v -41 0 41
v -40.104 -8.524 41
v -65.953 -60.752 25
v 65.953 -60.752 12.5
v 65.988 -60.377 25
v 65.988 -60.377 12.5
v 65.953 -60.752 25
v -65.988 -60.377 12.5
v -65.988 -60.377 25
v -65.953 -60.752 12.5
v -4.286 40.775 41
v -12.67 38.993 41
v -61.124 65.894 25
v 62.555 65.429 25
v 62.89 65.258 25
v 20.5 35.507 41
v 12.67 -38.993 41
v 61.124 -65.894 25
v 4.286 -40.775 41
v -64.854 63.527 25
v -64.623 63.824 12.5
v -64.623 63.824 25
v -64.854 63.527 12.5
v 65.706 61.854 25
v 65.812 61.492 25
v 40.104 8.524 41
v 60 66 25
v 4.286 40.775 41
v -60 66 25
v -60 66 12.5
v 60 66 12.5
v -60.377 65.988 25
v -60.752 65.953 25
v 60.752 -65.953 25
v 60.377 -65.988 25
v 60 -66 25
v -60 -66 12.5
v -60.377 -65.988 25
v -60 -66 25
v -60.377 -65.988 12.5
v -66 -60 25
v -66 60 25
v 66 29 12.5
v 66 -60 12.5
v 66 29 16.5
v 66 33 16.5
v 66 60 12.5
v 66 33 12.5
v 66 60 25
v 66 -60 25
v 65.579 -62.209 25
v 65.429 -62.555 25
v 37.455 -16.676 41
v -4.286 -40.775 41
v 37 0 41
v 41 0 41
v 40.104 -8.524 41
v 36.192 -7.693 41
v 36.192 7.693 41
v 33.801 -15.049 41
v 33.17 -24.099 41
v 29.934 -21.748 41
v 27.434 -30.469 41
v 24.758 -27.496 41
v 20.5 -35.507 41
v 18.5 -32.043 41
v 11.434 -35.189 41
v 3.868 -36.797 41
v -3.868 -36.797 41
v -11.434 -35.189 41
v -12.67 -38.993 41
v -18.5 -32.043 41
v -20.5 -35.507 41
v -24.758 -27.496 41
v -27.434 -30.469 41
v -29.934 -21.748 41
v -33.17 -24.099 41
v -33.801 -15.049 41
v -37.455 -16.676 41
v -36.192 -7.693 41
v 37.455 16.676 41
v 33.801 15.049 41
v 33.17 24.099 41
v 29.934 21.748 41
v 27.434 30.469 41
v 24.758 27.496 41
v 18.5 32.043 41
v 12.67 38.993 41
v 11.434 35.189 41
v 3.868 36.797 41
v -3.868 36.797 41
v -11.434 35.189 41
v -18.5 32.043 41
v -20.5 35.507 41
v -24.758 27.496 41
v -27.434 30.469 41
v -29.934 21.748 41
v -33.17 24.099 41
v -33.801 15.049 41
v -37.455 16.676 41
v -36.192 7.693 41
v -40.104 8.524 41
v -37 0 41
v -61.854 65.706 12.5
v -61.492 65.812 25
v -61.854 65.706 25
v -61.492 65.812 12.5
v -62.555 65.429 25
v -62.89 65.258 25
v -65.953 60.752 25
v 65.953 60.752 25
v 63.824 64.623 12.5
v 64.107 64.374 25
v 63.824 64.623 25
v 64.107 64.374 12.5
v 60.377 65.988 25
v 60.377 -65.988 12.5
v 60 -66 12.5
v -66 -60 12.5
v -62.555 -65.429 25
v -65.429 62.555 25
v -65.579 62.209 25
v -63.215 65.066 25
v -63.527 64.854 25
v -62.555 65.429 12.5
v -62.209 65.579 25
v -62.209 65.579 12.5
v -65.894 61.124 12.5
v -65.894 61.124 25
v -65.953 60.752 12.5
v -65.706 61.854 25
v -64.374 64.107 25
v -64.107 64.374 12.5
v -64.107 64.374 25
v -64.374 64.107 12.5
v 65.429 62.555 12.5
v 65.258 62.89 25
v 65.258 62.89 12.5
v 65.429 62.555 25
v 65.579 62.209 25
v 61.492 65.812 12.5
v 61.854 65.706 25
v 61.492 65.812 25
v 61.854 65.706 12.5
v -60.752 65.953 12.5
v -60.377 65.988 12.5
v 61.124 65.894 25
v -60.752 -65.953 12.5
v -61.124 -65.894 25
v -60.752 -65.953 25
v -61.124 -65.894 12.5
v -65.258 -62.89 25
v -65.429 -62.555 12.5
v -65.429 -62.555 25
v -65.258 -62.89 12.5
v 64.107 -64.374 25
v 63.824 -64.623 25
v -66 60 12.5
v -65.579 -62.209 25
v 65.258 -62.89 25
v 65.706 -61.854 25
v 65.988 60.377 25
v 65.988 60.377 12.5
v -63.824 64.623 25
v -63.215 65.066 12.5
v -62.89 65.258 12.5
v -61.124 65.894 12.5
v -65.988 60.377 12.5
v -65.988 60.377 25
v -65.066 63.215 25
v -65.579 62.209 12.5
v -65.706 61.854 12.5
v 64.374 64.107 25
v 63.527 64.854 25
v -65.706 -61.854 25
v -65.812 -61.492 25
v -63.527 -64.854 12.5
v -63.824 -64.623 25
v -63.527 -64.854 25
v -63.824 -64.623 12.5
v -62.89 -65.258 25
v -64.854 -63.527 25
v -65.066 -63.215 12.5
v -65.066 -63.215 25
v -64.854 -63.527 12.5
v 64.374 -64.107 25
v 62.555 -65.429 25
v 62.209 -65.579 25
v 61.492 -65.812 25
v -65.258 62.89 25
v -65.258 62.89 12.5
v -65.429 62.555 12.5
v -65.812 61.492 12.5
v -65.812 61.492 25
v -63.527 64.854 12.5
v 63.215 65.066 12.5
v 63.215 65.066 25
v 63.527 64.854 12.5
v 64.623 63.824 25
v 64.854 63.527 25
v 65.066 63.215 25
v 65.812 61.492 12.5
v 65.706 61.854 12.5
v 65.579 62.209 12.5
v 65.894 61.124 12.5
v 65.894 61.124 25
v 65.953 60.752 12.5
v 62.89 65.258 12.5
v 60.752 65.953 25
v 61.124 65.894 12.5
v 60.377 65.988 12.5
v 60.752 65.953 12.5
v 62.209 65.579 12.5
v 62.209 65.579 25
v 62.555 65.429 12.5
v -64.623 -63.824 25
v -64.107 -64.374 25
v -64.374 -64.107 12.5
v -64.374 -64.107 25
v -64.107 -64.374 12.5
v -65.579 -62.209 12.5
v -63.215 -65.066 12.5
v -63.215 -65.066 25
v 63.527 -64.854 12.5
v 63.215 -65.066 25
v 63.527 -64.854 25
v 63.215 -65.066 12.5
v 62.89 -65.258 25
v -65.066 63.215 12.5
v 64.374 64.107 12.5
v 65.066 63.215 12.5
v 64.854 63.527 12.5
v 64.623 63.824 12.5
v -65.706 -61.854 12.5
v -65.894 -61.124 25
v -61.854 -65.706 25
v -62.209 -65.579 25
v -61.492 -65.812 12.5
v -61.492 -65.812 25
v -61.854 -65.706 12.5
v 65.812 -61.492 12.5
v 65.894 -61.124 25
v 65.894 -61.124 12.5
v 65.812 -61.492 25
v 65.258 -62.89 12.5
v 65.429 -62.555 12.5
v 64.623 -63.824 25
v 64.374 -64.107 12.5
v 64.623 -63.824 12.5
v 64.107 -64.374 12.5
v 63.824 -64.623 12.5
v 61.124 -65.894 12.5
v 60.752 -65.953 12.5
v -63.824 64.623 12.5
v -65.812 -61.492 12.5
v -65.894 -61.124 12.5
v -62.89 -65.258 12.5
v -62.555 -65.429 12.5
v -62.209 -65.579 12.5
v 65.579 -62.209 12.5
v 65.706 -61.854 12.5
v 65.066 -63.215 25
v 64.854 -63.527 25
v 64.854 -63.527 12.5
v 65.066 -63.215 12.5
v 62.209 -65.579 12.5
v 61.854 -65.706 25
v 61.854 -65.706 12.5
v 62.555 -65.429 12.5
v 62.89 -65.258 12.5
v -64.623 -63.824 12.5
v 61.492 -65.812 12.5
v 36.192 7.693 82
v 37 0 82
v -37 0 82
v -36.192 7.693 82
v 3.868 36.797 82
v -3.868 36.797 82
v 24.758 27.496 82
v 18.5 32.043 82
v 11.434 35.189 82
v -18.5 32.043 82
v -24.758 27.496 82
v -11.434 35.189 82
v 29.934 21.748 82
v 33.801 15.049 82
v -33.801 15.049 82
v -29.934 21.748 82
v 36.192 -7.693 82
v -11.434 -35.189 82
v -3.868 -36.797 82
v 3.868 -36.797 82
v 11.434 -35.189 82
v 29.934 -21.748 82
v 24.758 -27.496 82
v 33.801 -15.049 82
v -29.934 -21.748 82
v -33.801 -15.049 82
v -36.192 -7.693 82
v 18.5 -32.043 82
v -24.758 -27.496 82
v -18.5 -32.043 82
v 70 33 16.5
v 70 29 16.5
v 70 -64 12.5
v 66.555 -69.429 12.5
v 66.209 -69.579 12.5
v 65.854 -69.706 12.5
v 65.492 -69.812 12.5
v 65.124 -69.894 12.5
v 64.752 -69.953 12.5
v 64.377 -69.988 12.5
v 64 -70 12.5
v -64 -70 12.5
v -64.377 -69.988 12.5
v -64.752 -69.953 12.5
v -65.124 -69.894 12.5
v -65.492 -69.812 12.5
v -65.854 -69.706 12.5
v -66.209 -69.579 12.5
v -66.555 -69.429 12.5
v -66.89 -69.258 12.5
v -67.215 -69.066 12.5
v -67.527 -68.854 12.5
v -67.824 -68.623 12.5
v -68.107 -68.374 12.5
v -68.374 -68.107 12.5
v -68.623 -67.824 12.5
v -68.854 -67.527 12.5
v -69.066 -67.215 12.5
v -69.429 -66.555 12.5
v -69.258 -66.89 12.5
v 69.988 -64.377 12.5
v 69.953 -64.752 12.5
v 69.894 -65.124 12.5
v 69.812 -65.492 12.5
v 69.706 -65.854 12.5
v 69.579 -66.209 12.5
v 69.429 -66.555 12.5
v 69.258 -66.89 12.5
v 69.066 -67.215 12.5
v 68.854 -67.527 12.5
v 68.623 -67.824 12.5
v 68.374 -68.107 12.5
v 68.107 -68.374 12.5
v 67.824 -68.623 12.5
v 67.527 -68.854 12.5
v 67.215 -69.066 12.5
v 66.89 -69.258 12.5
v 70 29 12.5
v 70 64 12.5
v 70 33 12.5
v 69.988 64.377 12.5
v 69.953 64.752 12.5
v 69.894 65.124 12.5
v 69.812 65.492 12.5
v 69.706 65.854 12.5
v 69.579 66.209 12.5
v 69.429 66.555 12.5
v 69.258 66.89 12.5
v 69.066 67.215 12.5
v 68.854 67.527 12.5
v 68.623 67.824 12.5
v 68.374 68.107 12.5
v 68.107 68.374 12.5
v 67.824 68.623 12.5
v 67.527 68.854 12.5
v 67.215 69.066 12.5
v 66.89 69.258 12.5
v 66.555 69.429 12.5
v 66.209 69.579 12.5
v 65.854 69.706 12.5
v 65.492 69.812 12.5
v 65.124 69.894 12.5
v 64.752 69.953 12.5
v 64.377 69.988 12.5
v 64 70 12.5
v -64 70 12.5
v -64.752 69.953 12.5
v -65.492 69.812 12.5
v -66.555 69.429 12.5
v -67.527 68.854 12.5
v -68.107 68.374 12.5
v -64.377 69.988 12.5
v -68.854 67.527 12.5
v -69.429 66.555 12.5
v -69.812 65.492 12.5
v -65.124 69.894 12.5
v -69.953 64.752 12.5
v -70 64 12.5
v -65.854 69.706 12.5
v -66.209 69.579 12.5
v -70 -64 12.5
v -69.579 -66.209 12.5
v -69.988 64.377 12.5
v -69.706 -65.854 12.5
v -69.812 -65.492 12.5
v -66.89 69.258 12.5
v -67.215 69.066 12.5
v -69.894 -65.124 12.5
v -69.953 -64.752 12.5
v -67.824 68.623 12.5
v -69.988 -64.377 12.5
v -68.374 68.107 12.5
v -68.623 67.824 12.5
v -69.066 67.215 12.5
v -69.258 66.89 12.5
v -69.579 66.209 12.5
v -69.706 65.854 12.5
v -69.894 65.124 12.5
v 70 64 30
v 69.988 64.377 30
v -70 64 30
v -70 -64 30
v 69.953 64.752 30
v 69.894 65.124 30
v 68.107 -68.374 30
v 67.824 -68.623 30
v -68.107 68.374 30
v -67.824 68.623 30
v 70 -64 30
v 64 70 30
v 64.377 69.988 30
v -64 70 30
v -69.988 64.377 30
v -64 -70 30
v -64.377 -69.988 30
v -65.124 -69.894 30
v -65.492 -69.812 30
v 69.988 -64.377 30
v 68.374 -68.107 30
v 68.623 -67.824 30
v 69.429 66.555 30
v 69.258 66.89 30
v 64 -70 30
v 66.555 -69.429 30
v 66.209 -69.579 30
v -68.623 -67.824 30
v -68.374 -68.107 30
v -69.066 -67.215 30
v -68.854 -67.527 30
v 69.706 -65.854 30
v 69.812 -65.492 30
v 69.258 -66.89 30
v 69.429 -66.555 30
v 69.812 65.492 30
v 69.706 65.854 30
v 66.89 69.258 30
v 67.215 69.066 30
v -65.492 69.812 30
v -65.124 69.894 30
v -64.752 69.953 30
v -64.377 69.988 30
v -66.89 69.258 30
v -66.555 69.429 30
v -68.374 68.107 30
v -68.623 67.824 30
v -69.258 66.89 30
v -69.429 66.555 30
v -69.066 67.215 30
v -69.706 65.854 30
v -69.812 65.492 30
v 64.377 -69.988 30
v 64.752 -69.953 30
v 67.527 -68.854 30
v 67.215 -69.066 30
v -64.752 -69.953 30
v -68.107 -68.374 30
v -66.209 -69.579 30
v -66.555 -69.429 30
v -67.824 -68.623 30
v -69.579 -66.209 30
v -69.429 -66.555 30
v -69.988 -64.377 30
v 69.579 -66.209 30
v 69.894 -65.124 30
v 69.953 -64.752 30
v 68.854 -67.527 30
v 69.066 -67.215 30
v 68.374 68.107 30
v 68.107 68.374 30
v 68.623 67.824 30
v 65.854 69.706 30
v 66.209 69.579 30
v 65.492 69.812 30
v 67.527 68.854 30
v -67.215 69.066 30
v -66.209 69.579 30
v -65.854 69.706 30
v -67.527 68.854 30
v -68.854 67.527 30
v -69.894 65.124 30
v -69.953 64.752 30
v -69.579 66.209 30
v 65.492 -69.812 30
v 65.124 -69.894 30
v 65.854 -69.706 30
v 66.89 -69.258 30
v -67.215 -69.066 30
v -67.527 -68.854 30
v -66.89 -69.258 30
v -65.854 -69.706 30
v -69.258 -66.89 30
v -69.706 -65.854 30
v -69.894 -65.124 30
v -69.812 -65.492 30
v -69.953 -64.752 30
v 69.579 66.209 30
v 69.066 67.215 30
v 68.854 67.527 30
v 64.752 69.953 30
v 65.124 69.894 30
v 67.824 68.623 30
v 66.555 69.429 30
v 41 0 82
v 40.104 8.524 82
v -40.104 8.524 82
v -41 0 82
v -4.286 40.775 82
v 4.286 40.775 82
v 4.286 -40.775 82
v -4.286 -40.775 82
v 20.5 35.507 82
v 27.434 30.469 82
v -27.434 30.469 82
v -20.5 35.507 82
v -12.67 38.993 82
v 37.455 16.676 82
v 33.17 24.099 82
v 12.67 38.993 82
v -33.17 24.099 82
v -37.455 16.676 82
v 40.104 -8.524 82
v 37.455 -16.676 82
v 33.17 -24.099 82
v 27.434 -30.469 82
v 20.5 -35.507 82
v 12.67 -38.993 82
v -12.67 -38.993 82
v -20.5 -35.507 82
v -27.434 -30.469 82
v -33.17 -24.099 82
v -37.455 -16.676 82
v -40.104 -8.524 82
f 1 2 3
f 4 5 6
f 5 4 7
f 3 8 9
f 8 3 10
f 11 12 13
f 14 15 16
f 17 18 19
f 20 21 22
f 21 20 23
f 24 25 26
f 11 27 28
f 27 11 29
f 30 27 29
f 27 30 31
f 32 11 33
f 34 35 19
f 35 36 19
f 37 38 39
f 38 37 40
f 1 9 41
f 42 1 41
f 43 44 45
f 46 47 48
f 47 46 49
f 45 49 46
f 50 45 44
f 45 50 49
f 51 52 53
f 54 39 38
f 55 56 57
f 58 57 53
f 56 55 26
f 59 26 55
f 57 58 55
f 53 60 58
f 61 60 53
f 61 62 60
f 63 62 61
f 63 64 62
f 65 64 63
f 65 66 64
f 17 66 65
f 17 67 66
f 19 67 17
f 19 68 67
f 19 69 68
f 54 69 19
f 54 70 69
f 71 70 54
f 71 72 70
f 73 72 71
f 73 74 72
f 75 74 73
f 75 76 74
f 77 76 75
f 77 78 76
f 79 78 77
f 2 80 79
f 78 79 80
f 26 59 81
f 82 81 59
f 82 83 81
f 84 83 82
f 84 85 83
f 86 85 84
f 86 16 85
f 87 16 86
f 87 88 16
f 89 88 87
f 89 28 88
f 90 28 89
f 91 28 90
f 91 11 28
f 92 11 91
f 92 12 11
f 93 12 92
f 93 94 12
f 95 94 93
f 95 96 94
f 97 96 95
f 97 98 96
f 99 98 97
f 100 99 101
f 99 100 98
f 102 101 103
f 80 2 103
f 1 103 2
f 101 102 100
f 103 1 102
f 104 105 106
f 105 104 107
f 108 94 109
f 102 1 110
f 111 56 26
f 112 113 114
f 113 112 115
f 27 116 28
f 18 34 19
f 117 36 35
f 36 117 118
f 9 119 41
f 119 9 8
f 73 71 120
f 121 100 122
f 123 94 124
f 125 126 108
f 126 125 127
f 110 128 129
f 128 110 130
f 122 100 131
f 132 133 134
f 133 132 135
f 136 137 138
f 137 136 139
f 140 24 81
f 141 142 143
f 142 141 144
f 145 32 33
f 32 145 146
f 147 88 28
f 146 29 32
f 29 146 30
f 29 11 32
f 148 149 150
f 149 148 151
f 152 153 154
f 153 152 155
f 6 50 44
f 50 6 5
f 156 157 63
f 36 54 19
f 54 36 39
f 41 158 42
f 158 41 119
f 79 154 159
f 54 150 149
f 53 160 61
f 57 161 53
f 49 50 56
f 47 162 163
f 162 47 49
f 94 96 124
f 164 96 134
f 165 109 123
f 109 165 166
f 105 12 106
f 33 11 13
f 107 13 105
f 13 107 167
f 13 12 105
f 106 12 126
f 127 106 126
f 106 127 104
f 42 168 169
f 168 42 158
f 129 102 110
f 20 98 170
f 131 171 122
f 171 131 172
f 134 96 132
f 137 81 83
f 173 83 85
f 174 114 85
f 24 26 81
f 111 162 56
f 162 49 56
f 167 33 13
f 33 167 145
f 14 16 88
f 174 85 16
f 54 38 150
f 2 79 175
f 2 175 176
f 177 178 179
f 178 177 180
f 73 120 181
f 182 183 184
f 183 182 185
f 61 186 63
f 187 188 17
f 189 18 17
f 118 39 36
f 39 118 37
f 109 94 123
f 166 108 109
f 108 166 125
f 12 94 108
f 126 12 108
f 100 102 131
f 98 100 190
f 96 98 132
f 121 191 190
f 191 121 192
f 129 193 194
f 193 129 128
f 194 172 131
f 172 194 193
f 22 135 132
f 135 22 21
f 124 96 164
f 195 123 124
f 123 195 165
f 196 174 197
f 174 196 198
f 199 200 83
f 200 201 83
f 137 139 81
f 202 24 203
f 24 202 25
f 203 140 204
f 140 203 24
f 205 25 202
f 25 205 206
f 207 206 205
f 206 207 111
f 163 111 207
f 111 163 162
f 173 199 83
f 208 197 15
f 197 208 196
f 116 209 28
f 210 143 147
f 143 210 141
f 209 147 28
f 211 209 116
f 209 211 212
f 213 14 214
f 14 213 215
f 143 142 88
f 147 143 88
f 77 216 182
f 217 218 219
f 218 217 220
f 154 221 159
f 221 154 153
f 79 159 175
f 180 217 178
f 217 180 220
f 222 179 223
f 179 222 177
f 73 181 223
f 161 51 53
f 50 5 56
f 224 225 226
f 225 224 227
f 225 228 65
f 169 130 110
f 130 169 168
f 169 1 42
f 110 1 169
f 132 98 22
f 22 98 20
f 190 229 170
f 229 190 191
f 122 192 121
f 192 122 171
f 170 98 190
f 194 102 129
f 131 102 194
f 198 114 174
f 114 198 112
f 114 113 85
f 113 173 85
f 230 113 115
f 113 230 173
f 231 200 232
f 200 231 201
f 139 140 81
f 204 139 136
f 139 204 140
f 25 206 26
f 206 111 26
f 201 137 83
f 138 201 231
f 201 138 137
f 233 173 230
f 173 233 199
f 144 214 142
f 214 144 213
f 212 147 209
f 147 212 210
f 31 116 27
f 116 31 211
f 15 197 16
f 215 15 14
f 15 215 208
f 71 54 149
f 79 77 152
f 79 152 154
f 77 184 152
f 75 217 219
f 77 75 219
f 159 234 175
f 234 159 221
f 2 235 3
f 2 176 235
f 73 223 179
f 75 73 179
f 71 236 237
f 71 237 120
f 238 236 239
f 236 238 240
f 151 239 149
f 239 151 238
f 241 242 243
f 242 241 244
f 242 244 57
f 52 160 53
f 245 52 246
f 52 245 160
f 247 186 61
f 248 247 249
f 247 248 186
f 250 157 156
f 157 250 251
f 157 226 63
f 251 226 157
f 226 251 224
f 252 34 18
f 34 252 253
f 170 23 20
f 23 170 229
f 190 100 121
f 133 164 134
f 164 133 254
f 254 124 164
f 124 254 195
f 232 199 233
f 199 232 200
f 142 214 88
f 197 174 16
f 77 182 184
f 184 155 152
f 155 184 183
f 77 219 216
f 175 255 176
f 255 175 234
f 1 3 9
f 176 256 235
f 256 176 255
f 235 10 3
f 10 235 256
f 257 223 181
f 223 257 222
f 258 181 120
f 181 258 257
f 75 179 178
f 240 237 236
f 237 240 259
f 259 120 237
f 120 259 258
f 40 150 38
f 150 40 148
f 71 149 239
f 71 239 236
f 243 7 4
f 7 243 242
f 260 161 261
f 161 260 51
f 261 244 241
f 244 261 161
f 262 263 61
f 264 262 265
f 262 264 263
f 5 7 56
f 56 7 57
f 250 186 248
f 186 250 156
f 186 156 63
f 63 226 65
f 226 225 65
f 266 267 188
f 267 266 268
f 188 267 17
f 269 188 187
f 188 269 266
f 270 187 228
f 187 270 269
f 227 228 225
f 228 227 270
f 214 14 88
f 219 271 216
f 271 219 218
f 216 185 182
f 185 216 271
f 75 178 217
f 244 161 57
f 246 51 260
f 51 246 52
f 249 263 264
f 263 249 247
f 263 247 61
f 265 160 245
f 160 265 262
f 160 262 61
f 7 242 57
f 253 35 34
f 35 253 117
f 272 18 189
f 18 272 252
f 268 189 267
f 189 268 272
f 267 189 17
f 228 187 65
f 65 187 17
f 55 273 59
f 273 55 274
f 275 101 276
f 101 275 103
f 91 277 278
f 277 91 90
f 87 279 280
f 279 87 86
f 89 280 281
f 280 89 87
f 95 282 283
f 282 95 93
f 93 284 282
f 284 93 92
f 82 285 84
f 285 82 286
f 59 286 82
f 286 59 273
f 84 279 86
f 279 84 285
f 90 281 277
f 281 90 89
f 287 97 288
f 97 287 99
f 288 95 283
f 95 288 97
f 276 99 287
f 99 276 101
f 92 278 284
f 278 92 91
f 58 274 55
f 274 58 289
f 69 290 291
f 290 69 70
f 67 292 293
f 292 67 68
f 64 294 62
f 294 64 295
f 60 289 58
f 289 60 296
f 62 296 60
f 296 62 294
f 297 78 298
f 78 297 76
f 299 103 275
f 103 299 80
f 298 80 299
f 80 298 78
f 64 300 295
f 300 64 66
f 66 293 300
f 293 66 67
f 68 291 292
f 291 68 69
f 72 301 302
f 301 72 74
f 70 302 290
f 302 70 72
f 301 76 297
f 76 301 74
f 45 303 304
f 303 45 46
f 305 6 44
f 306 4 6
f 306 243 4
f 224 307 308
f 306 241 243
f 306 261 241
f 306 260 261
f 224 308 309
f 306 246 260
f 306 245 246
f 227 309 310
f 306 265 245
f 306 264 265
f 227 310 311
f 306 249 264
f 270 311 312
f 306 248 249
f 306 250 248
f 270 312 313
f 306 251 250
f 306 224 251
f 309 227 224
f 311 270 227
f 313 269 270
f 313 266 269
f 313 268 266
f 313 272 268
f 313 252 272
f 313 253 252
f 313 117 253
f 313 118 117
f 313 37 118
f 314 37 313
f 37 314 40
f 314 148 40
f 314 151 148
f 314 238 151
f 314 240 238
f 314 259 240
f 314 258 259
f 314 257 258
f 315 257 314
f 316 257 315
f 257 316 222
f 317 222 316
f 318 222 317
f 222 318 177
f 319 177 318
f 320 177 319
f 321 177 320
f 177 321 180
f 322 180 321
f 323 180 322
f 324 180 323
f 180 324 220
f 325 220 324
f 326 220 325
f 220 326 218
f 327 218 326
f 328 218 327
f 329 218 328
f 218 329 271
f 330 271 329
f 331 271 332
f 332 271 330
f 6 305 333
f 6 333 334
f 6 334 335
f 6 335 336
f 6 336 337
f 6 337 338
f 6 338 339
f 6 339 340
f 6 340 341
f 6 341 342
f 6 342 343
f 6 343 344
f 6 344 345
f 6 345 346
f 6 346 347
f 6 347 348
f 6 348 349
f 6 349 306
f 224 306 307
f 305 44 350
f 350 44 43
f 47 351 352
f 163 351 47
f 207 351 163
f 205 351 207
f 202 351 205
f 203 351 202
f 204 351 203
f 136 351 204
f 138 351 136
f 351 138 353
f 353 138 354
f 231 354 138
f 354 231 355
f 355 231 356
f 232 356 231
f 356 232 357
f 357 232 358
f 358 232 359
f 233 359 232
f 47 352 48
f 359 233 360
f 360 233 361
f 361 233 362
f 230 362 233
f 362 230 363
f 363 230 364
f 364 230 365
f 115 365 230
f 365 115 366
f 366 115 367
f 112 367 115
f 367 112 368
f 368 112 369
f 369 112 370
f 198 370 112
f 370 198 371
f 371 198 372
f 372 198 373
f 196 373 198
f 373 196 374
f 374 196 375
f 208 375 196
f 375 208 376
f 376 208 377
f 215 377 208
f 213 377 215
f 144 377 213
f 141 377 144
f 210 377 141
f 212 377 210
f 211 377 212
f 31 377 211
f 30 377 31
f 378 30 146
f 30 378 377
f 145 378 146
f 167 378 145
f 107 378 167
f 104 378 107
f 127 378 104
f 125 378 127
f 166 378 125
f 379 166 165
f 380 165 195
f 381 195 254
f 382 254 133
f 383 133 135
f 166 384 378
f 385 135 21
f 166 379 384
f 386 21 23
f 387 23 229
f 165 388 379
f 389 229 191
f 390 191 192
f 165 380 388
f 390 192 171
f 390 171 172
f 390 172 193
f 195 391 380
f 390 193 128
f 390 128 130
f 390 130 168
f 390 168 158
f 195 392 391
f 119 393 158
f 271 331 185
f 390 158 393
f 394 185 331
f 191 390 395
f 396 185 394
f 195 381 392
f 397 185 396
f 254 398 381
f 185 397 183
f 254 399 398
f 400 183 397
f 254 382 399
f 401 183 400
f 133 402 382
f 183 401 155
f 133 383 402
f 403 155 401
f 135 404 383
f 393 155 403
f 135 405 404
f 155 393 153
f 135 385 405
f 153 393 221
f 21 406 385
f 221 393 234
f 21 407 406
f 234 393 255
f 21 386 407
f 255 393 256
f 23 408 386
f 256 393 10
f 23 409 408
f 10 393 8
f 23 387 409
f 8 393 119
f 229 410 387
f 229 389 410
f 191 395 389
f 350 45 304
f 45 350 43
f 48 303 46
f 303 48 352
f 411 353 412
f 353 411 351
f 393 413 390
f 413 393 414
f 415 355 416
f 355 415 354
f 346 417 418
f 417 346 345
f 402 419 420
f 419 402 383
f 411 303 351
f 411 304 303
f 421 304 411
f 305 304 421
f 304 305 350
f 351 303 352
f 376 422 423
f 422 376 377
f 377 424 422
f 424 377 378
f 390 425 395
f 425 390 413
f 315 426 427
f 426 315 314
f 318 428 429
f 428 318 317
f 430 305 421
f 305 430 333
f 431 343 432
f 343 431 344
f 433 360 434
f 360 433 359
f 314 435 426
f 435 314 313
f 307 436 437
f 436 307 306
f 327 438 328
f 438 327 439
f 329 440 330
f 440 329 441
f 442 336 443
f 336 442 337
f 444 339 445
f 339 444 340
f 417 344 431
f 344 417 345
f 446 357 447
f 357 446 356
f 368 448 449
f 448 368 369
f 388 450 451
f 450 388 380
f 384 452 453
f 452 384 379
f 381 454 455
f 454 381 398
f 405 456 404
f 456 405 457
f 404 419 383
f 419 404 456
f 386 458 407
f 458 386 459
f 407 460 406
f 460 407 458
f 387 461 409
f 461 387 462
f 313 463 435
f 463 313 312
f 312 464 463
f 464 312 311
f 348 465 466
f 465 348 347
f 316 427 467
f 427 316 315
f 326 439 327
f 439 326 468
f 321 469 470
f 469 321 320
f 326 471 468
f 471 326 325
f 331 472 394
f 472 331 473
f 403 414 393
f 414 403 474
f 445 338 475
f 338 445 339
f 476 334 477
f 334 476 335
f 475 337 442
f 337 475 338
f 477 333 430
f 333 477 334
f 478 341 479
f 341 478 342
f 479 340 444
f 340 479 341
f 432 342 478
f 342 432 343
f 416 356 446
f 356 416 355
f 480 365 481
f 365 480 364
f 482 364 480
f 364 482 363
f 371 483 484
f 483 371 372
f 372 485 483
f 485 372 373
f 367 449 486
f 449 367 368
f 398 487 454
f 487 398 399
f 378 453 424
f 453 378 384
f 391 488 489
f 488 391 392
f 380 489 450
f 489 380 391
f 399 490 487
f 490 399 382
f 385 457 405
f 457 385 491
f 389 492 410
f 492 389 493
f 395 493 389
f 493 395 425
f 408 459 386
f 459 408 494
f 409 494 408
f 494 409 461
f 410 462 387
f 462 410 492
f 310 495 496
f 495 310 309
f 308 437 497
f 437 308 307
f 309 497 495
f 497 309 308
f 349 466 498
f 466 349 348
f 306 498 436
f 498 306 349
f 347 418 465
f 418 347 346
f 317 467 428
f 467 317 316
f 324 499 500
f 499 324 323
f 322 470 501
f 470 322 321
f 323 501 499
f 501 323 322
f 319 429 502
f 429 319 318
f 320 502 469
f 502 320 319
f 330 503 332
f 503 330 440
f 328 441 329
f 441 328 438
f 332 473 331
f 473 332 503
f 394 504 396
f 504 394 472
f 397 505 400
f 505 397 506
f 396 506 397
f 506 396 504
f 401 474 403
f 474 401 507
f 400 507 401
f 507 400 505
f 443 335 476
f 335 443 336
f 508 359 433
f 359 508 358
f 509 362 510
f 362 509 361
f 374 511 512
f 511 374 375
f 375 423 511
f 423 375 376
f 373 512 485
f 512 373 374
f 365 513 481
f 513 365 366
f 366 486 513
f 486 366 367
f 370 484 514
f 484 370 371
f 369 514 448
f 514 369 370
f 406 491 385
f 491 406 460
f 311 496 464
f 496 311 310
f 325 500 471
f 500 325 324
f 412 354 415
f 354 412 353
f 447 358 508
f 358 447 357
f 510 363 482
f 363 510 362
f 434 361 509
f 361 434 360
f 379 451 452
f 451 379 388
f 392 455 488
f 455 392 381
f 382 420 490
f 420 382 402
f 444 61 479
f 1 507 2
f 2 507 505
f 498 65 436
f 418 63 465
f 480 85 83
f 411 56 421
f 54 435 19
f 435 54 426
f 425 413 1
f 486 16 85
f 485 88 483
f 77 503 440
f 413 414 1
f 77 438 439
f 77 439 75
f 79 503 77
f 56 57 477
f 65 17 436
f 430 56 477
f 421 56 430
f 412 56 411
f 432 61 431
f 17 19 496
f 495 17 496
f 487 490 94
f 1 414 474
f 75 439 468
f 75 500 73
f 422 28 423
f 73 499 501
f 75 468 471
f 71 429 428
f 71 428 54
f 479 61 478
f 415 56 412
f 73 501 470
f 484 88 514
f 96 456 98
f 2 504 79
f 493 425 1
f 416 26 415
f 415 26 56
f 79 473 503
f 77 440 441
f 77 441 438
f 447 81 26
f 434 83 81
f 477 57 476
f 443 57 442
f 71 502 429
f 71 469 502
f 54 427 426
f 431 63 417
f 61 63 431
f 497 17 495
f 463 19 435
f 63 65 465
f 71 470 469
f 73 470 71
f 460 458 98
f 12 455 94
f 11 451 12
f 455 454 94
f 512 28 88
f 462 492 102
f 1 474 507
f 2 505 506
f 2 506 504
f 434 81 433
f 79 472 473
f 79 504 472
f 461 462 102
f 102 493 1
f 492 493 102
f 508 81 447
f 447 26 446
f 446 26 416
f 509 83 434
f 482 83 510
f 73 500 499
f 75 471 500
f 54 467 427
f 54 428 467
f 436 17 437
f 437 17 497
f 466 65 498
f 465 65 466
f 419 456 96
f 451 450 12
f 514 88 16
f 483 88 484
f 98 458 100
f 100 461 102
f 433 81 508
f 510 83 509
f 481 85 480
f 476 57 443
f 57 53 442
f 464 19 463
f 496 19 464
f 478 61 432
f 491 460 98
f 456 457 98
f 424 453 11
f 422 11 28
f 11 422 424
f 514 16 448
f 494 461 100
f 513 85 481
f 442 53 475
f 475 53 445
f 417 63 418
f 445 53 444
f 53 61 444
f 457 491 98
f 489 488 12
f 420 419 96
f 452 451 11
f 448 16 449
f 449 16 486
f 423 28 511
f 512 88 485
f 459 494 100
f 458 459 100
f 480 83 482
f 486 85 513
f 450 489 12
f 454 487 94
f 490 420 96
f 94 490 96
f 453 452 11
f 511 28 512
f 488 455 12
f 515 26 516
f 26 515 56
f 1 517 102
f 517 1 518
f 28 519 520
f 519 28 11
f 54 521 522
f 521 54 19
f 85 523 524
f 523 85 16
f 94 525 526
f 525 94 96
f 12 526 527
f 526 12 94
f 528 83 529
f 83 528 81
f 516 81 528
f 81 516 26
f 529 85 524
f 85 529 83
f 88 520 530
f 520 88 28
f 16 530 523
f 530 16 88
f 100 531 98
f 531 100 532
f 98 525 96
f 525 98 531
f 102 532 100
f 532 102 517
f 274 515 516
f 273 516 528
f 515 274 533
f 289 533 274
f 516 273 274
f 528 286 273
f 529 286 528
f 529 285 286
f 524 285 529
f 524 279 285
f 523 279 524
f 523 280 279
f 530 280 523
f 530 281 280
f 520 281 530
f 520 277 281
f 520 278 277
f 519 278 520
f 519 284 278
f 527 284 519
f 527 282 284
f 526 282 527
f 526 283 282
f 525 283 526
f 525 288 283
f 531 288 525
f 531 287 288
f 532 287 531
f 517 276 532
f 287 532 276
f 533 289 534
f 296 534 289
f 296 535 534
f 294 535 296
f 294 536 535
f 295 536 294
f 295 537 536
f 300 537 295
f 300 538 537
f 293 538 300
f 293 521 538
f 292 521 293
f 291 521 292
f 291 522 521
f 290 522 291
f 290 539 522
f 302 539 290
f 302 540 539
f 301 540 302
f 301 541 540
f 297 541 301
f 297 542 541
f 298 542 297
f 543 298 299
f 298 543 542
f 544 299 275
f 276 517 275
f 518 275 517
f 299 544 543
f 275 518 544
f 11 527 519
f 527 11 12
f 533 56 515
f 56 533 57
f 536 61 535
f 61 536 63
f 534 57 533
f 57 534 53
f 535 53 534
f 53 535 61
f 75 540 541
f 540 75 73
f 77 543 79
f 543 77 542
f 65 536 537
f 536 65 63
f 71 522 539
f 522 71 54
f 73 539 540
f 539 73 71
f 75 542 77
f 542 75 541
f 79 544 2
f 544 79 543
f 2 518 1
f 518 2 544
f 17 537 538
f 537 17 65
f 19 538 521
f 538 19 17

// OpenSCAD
module solidFan(squareSize,cornerRad,depth){
    union(){
        translate([(-squareSize+cornerRad)/2,(-squareSize+cornerRad)/2,0])cube([squareSize-cornerRad,squareSize-cornerRad,depth]);
        //make rounded corners
        hull(){
            translate([squareSize/2,squareSize/2,0])cylinder(h=depth,r=cornerRad,$fn=100);
            translate([-squareSize/2,squareSize/2,0])cylinder(h=depth,r=cornerRad,$fn=100);
            translate([-squareSize/2,-squareSize/2,0])cylinder(h=depth,r=cornerRad,$fn=100);
            translate([squareSize/2,-squareSize/2,0])cylinder(h=depth,r=cornerRad,$fn=100);
        }
    }
}

module fan(diameter){
    depth = 25;
    cornerRad = 6;
    squareSize = diameter-cornerRad*2;
    holeInset = 6;
    holeRad = 2;
    difference(){
        solidFan(squareSize,cornerRad,depth);
        union(){
            cylinder(h = depth+1, r = (diameter-2)/2);
            translate([squareSize/2,squareSize/2,0])cylinder(h=depth+1,r=holeRad);
            translate([-squareSize/2,squareSize/2,0])cylinder(h=depth+1,r=holeRad);
            translate([-squareSize/2,-squareSize/2,0])cylinder(h=depth+1,r=holeRad);
            translate([squareSize/2,-squareSize/2,0])cylinder(h=depth+1,r=holeRad);
        }
    }
}



module funnelThing(diameterFan,diameterHose,depth,cornerRad,squareSize,thickness=4){
    difference(){
        union(){
            hull(){
                cylinder(h=diameterHose/2,r=diameterHose/2);
                translate([0,0,depth/2+5])solidFan(squareSize+thickness*2,cornerRad,depth/2);
            }
            translate([0,0,depth/2])solidFan(squareSize+thickness*2,cornerRad,depth/2+1);
        cylinder(h=diameterHose,r=diameterHose/2);
        //rebate the edge so the halves can slip inside eachother
        //translate([0,0,depth/2-thickness/2])difference(){
        //    solidFan(squareSize+thickness*2,cornerRad,thickness/2);
        //   solidFan(squareSize+thickness+.2,cornerRad,thickness/2);
        //}
        }
        union(){
            hull(){
                cylinder(h=diameterHose/2,r=diameterHose/2);
                solidFan(squareSize,cornerRad,depth);
            }
        cylinder(h=diameterHose+1,r=diameterHose/2-thickness);
        translate([diameterFan/2+thickness,diameterFan/2-6-25,depth/2])cube([thickness*2,4,4]);
        }
    }
}

//translate([120*1.5,0,0])fan(120);
funnelThing(diameterFan = 120, diameterHose = 4*21.5-4, depth=25,cornerRad=6,squareSize=120);
